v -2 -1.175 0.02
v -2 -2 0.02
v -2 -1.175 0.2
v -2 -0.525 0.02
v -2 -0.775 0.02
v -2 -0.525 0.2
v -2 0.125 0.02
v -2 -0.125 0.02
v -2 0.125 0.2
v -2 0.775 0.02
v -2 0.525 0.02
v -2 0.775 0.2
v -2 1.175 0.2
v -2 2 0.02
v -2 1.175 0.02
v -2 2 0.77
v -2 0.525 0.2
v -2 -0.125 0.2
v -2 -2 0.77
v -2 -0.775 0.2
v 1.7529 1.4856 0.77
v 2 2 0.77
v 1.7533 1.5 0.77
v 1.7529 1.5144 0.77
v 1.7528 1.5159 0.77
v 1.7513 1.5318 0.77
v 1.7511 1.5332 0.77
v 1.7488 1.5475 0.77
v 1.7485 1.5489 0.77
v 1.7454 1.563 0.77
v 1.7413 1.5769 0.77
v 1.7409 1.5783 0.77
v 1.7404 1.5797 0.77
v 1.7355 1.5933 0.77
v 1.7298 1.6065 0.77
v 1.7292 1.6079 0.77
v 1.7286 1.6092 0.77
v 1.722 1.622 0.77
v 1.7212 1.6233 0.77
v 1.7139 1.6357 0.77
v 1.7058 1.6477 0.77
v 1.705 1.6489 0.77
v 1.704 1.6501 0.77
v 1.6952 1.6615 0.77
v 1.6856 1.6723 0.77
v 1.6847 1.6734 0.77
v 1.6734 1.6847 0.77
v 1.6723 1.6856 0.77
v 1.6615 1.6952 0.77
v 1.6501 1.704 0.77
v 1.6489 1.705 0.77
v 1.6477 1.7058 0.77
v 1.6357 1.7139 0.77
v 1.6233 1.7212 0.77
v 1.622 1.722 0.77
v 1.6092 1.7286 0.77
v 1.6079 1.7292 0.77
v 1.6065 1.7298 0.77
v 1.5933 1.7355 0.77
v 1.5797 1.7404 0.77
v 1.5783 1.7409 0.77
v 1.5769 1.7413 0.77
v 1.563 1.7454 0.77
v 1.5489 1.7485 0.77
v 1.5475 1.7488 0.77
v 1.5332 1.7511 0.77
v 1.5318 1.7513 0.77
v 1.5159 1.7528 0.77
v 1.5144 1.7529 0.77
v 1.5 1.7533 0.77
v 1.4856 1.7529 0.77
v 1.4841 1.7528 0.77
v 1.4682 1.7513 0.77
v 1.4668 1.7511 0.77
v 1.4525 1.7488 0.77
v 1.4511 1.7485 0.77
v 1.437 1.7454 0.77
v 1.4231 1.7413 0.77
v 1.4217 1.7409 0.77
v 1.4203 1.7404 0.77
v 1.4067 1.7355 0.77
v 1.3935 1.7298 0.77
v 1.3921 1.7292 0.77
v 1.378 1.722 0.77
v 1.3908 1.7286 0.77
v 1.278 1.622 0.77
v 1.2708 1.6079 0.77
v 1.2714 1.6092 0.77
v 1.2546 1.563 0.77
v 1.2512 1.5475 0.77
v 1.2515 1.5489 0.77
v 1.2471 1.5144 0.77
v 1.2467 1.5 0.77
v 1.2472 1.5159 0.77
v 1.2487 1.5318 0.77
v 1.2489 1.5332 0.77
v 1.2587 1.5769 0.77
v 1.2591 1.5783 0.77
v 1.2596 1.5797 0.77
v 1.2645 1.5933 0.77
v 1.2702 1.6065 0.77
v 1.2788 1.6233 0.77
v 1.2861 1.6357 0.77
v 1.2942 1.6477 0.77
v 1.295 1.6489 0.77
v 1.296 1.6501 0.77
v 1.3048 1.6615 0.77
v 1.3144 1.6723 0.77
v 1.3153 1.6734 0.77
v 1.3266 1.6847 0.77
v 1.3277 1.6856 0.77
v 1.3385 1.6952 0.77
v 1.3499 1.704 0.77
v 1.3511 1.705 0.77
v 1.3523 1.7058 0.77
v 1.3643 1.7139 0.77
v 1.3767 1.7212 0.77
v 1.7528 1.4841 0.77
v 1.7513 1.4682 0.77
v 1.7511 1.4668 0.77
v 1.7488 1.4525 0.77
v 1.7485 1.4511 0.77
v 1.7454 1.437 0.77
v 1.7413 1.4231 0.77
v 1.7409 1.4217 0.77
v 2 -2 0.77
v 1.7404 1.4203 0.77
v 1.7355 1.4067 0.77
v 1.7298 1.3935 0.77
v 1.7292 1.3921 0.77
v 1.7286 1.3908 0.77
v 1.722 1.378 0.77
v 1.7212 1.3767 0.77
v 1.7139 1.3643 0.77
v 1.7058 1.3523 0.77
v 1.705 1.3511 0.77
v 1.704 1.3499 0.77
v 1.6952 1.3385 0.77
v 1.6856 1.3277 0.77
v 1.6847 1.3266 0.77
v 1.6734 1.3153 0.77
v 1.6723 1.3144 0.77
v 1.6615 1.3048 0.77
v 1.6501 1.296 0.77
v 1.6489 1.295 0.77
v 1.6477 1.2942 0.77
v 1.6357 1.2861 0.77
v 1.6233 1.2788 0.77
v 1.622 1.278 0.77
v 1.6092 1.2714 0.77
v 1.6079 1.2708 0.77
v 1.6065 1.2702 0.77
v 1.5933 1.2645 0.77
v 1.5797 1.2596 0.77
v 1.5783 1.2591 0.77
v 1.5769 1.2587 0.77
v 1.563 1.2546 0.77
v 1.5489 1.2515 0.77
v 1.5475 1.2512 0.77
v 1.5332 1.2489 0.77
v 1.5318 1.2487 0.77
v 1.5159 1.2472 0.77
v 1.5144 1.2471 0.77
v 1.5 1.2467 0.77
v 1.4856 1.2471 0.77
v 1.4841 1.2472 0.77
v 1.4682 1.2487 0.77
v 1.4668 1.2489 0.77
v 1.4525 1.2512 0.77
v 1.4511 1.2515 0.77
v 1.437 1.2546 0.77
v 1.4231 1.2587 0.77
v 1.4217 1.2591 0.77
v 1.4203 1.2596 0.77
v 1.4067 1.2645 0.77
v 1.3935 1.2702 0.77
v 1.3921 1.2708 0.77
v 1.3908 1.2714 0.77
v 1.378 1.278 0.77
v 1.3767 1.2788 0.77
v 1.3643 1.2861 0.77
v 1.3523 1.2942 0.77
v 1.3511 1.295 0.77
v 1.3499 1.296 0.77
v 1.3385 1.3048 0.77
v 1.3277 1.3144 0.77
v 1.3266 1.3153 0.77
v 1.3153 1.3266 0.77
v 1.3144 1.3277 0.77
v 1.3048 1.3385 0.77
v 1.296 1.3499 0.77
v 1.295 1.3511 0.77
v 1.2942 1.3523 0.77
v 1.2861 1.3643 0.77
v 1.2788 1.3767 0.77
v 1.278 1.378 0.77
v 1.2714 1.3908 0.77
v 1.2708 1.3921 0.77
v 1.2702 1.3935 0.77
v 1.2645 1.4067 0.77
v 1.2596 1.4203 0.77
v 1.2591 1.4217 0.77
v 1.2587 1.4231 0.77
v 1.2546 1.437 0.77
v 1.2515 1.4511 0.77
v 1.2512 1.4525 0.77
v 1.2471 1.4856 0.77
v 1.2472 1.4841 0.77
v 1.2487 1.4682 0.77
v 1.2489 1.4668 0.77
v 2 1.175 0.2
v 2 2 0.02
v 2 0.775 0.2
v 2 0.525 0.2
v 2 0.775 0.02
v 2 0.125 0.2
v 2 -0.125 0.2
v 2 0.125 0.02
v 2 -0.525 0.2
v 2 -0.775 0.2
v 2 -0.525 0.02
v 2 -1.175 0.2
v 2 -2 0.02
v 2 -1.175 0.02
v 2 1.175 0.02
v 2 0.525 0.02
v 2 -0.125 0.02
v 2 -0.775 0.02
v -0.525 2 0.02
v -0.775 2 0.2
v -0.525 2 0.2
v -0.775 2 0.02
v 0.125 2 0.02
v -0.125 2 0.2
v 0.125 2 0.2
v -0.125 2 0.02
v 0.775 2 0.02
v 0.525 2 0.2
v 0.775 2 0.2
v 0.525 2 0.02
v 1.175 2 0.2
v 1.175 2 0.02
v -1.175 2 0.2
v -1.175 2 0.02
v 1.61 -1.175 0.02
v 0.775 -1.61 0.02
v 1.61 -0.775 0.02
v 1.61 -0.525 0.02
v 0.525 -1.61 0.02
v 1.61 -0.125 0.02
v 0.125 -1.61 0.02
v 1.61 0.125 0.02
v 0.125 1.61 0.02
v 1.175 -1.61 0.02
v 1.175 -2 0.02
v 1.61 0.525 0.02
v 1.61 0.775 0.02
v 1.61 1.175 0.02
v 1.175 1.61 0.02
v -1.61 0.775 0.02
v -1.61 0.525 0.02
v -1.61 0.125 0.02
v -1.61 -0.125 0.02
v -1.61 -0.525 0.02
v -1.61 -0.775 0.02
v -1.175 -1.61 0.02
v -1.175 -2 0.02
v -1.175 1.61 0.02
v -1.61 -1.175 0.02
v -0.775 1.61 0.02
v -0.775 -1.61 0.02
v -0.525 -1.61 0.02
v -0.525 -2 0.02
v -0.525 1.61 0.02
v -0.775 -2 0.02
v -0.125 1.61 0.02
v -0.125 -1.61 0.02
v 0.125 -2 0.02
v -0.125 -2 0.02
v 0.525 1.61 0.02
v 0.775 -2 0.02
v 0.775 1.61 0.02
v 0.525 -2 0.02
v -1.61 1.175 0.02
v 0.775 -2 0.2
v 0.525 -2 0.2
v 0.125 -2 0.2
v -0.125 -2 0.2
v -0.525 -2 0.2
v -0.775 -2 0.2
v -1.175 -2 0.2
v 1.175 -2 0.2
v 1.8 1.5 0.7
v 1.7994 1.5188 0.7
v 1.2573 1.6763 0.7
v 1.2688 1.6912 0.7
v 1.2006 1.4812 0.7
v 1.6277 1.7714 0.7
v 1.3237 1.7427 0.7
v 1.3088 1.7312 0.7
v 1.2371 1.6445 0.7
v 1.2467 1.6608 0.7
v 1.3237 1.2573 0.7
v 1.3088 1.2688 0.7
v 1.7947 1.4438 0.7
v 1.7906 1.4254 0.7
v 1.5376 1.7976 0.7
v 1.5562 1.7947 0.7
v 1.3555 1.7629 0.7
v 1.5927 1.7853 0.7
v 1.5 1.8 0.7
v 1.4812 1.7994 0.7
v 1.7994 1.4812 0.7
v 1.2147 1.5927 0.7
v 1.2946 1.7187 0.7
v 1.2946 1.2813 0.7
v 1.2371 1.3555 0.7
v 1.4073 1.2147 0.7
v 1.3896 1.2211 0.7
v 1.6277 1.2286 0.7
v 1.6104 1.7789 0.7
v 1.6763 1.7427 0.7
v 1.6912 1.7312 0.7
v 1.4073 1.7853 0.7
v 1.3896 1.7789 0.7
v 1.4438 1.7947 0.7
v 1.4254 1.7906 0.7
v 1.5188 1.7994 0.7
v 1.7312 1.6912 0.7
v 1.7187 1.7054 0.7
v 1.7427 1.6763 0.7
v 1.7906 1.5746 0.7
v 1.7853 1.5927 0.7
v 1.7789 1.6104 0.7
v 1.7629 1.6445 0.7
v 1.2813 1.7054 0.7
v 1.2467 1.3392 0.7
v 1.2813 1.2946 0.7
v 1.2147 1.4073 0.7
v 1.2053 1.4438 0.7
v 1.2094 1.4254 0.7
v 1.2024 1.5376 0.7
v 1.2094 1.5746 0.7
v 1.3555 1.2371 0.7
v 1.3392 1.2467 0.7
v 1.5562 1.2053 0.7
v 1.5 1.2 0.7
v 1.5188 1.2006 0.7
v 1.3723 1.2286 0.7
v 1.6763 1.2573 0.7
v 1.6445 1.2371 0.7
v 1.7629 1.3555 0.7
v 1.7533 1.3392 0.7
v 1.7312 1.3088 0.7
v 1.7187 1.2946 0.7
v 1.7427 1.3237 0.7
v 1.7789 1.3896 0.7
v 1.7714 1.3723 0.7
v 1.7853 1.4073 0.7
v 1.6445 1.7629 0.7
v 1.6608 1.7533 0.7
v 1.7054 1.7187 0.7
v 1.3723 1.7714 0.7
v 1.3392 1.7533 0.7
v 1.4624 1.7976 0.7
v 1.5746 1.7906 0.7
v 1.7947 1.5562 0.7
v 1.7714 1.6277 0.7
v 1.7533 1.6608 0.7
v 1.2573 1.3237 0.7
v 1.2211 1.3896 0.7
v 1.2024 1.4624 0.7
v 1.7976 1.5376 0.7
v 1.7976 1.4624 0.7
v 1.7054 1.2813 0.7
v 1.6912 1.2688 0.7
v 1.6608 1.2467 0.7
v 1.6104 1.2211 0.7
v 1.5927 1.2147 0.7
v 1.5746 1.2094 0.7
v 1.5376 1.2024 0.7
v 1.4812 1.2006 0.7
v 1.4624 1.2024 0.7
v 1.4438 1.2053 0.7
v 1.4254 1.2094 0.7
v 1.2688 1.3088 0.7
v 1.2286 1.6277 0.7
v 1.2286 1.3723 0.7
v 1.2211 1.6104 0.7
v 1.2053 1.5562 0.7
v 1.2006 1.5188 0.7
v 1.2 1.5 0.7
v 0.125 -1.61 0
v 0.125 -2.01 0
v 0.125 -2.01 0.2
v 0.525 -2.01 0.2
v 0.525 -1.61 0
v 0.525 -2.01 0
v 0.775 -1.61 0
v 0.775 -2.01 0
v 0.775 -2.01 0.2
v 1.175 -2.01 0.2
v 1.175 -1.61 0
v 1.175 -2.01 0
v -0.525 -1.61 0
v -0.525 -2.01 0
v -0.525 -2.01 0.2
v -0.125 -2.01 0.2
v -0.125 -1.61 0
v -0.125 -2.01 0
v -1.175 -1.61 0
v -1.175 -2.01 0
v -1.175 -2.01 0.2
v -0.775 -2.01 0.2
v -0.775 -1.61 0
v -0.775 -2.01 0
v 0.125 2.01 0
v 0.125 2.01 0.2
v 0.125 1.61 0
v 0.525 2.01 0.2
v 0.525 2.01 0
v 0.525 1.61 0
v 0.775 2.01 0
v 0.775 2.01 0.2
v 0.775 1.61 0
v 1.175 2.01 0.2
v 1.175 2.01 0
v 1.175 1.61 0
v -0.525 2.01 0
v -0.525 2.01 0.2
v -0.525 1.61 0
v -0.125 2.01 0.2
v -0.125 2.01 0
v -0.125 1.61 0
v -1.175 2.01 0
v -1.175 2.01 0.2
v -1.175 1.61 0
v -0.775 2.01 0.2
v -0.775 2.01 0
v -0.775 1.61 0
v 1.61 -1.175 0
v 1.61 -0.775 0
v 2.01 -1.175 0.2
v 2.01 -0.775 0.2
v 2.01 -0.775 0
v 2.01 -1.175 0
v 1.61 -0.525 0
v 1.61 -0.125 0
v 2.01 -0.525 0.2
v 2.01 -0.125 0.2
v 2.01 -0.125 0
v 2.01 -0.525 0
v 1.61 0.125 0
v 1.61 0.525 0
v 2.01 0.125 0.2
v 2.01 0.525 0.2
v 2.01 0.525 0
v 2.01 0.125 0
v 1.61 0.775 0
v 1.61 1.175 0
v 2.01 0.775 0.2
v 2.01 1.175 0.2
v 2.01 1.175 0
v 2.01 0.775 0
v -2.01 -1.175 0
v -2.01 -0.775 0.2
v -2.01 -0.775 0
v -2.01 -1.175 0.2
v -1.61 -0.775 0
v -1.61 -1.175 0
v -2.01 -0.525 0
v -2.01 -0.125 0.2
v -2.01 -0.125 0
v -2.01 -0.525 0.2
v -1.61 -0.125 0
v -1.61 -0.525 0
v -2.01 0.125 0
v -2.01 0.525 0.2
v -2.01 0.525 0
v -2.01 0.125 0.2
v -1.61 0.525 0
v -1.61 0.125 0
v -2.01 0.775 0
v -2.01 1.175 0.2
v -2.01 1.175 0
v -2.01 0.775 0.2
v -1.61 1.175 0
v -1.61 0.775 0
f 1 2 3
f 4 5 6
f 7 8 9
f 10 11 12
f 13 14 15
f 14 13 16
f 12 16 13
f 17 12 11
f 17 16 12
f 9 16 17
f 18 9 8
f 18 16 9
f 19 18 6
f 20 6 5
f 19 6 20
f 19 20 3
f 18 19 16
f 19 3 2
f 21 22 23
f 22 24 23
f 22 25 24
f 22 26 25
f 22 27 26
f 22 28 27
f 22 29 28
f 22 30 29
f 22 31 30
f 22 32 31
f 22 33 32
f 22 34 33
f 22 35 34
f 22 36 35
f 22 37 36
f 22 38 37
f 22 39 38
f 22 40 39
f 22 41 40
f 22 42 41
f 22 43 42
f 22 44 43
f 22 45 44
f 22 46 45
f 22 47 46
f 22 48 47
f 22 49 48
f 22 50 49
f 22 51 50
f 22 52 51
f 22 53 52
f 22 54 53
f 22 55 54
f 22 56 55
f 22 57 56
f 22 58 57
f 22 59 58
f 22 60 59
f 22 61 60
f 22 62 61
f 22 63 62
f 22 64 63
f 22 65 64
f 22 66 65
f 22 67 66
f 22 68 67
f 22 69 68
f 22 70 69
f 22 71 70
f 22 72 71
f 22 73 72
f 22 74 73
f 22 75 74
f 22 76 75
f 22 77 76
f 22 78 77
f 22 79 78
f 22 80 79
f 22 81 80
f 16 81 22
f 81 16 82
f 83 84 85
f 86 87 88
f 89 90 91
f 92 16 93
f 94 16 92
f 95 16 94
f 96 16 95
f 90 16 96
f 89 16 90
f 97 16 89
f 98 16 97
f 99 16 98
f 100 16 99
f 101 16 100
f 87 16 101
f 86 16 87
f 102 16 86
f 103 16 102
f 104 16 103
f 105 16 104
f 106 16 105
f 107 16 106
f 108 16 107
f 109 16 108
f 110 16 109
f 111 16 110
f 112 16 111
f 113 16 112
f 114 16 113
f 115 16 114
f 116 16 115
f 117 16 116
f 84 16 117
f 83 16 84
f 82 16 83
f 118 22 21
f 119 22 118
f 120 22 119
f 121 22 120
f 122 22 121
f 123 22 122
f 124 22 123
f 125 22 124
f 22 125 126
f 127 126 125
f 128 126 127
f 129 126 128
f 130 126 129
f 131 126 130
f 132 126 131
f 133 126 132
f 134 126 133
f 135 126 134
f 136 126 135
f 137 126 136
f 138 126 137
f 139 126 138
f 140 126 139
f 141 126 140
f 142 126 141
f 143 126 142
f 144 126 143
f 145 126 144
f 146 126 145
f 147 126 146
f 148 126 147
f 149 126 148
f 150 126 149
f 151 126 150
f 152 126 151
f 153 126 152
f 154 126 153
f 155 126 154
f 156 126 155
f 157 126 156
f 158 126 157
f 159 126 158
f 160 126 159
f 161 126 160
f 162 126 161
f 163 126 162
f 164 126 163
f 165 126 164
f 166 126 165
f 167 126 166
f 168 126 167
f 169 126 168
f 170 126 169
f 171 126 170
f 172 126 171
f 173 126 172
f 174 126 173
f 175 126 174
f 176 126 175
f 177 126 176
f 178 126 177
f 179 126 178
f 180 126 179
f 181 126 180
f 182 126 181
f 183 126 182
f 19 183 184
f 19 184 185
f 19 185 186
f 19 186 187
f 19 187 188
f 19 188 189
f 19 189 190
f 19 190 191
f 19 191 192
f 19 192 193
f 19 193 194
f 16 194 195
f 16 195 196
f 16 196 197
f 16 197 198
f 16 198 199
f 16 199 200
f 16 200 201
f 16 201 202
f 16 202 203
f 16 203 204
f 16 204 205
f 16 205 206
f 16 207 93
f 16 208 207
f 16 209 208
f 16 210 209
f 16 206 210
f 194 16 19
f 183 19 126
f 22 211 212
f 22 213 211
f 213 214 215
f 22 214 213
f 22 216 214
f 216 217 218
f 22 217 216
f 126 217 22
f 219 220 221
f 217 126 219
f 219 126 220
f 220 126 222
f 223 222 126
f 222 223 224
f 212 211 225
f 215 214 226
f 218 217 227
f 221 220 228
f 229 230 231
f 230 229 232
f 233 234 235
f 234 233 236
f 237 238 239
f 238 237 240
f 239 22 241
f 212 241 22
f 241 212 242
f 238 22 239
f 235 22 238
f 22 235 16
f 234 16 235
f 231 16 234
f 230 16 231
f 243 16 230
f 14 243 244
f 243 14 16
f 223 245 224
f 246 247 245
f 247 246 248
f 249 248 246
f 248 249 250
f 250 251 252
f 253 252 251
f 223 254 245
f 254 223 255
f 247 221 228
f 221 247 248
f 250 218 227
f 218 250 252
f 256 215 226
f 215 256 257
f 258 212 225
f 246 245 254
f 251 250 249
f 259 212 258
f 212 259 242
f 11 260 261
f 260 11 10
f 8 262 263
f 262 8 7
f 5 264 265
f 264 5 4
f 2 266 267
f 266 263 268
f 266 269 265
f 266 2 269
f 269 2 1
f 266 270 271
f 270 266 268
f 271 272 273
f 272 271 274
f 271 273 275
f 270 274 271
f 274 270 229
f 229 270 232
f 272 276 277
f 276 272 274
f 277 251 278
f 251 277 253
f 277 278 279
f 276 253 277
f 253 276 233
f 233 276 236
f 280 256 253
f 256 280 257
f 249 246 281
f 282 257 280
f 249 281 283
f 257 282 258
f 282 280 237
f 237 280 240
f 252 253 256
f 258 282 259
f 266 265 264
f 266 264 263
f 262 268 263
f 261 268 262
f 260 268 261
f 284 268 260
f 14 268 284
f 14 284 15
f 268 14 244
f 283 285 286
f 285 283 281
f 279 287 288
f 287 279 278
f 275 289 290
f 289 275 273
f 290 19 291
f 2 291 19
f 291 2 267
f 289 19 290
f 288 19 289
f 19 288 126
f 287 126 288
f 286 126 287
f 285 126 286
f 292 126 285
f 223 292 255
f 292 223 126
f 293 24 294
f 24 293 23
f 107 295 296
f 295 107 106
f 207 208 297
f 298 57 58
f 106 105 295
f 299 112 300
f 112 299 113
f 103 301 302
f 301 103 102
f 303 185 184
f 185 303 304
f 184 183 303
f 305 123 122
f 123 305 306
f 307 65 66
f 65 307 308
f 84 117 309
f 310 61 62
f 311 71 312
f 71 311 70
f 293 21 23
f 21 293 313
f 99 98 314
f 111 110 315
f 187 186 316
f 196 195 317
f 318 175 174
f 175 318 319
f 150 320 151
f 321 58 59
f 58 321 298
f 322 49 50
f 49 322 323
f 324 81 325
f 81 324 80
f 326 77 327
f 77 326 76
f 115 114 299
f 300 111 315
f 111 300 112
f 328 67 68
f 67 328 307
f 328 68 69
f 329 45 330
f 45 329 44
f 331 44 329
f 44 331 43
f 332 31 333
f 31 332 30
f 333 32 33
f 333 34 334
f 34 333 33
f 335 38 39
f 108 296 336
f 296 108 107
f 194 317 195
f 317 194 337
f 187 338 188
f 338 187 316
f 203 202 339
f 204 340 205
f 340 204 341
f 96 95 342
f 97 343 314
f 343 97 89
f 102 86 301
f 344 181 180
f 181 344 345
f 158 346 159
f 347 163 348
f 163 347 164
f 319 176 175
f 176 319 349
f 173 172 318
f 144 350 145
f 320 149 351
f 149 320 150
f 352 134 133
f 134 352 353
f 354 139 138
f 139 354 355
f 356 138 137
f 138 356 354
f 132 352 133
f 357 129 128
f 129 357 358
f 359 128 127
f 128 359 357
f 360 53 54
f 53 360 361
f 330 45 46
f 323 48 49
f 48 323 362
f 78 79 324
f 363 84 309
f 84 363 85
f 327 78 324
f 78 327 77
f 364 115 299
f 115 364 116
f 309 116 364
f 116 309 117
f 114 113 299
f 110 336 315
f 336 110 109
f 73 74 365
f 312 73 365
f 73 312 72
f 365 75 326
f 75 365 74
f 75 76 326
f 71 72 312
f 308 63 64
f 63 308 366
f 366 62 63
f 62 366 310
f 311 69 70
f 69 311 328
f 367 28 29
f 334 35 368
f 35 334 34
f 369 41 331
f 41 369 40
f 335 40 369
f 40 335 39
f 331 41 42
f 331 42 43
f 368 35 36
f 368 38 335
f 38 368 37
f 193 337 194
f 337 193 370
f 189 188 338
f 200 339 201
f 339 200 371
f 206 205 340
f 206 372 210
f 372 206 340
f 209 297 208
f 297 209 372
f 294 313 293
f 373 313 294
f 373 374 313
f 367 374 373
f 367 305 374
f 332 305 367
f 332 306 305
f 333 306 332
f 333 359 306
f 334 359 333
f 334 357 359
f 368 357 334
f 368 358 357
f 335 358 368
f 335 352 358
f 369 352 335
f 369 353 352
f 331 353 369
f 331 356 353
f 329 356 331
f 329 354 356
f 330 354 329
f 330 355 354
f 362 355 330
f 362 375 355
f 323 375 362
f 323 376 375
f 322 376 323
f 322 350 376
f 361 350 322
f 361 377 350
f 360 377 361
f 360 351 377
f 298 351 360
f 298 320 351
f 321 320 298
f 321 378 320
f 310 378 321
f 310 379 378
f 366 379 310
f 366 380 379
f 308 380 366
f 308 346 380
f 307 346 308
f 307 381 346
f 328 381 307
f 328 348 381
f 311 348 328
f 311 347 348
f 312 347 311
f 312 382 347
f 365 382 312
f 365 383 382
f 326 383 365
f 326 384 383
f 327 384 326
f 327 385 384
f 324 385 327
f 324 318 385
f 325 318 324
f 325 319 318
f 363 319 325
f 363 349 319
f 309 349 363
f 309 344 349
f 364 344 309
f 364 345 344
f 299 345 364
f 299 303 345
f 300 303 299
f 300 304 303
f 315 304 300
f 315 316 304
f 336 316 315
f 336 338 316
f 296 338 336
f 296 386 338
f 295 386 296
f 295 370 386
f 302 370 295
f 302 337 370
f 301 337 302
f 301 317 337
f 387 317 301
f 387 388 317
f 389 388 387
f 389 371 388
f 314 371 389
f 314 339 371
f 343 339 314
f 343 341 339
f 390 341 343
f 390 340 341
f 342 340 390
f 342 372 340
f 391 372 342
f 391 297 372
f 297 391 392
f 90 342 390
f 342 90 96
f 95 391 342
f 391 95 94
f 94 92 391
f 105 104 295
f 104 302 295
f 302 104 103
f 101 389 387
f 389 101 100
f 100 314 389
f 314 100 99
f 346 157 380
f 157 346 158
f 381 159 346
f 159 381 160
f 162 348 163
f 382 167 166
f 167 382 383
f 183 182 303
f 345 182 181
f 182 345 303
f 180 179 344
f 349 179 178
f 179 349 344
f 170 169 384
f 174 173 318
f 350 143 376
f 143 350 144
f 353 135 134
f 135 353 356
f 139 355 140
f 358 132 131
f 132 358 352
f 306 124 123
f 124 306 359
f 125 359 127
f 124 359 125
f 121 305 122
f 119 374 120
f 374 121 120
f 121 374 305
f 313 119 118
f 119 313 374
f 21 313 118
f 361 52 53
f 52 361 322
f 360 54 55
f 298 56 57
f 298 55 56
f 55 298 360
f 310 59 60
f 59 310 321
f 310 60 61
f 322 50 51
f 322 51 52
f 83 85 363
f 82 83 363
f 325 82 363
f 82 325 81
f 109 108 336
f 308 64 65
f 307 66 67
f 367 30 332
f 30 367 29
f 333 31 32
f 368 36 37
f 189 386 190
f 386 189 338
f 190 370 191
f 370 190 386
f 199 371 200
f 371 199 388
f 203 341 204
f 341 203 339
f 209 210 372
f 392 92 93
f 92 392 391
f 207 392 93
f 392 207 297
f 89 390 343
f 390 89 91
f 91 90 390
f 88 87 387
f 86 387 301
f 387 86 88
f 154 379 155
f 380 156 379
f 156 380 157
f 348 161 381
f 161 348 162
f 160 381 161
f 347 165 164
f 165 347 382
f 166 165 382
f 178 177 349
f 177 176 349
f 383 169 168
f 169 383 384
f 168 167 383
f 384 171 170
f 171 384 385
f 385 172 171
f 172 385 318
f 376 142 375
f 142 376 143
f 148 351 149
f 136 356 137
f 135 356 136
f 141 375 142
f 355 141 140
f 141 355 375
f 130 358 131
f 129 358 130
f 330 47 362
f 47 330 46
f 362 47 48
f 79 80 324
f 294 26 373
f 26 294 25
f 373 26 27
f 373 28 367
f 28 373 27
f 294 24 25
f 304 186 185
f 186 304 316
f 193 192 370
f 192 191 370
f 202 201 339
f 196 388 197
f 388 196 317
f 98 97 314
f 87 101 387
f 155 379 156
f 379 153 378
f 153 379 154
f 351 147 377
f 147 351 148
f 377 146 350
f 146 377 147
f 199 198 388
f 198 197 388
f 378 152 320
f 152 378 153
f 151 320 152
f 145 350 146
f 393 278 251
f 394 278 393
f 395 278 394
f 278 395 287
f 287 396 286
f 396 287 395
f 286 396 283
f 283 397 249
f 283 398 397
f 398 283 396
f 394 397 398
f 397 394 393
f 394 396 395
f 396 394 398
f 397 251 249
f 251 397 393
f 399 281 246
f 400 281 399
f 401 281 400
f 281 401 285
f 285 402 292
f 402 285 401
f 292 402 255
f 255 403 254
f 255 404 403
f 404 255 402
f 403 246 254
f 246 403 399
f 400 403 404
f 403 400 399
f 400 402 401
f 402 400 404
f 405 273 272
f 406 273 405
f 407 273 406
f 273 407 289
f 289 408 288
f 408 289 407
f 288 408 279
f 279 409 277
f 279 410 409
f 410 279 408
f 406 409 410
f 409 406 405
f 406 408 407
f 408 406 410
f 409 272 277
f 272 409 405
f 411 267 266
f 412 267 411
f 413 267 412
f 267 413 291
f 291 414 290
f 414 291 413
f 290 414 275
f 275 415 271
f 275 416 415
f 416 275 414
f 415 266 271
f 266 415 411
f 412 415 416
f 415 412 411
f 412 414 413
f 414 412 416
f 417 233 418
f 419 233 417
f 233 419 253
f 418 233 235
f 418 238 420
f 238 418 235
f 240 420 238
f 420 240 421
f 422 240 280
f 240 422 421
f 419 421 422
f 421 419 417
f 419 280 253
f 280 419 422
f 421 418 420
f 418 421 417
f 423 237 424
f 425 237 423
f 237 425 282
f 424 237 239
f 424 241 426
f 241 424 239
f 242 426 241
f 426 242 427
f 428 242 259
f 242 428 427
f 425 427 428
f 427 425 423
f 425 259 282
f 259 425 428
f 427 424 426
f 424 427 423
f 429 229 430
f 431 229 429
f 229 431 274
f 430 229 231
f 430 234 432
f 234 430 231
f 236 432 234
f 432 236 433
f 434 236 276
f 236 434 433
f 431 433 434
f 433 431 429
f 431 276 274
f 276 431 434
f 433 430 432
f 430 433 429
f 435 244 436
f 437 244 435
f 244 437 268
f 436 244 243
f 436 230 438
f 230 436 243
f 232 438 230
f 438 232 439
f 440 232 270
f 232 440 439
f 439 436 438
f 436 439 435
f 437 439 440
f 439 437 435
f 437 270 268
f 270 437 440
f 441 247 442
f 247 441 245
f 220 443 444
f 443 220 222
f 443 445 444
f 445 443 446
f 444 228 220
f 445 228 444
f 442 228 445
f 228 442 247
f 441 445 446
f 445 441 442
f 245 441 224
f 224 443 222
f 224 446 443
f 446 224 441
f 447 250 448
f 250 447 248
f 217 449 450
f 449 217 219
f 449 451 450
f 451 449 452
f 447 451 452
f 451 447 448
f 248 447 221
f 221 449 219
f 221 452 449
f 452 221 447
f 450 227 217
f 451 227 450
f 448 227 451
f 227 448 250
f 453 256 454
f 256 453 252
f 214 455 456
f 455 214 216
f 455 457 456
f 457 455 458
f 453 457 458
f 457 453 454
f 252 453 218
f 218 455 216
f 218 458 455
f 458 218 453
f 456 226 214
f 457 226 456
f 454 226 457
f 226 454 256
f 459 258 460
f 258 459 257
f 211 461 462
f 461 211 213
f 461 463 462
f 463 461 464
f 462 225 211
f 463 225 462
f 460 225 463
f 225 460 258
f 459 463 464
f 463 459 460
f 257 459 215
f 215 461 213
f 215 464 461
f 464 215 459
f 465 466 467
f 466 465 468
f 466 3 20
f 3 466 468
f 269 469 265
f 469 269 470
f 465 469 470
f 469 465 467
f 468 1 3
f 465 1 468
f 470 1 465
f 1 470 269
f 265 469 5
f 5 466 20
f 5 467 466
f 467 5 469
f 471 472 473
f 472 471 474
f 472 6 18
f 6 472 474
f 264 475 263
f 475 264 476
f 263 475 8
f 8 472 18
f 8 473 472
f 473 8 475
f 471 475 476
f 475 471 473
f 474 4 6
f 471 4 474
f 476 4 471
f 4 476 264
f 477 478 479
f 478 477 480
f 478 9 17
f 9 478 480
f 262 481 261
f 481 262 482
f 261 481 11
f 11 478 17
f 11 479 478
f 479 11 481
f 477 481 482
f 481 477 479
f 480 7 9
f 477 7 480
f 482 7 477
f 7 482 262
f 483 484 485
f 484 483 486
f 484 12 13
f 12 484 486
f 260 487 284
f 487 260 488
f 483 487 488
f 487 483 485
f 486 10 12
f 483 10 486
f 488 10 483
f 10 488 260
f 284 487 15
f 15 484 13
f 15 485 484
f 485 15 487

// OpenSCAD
e = 0.65;
ps = 0.4;
$fn = 100;

difference(){
translate([-2,-2,0.02]) cube([4,4,0.75]);
translate([1.5,1.5,0.7]) cylinder(0.3,0.3,0.1);
}
translate([e*0.5-ps/2,-2.01, 0]) cube([ps, ps, 0.2]);
translate([e*1.5-ps/2,-2.01, 0]) cube([ps, ps, 0.2]);
translate([e*-0.5-ps/2,-2.01, 0]) cube([ps, ps, 0.2]);
translate([e*-1.5-ps/2,-2.01, 0]) cube([ps, ps, 0.2]);

translate([e*0.5-ps/2, 2.01-ps, 0]) cube([ps, ps, 0.2]);
translate([e*1.5-ps/2, 2.01-ps, 0]) cube([ps, ps, 0.2]);
translate([e*-0.5-ps/2, 2.01-ps, 0]) cube([ps, ps, 0.2]);
translate([e*-1.5-ps/2, 2.01-ps, 0]) cube([ps, ps, 0.2]);

translate([2.01-ps, e*-1.5-ps/2, 0]) cube([ps, ps, 0.2]);
translate([2.01-ps, e*-0.5-ps/2, 0]) cube([ps, ps, 0.2]);
translate([2.01-ps, e*0.5-ps/2, 0]) cube([ps, ps, 0.2]);
translate([2.01-ps, e*1.5-ps/2, 0]) cube([ps, ps, 0.2]);

translate([-2.01, e*-1.5-ps/2, 0]) cube([ps, ps, 0.2]);
translate([-2.01, e*-0.5-ps/2, 0]) cube([ps, ps, 0.2]);
translate([-2.01, e*0.5-ps/2, 0]) cube([ps, ps, 0.2]);
translate([-2.01, e*1.5-ps/2, 0]) cube([ps, ps, 0.2]);
